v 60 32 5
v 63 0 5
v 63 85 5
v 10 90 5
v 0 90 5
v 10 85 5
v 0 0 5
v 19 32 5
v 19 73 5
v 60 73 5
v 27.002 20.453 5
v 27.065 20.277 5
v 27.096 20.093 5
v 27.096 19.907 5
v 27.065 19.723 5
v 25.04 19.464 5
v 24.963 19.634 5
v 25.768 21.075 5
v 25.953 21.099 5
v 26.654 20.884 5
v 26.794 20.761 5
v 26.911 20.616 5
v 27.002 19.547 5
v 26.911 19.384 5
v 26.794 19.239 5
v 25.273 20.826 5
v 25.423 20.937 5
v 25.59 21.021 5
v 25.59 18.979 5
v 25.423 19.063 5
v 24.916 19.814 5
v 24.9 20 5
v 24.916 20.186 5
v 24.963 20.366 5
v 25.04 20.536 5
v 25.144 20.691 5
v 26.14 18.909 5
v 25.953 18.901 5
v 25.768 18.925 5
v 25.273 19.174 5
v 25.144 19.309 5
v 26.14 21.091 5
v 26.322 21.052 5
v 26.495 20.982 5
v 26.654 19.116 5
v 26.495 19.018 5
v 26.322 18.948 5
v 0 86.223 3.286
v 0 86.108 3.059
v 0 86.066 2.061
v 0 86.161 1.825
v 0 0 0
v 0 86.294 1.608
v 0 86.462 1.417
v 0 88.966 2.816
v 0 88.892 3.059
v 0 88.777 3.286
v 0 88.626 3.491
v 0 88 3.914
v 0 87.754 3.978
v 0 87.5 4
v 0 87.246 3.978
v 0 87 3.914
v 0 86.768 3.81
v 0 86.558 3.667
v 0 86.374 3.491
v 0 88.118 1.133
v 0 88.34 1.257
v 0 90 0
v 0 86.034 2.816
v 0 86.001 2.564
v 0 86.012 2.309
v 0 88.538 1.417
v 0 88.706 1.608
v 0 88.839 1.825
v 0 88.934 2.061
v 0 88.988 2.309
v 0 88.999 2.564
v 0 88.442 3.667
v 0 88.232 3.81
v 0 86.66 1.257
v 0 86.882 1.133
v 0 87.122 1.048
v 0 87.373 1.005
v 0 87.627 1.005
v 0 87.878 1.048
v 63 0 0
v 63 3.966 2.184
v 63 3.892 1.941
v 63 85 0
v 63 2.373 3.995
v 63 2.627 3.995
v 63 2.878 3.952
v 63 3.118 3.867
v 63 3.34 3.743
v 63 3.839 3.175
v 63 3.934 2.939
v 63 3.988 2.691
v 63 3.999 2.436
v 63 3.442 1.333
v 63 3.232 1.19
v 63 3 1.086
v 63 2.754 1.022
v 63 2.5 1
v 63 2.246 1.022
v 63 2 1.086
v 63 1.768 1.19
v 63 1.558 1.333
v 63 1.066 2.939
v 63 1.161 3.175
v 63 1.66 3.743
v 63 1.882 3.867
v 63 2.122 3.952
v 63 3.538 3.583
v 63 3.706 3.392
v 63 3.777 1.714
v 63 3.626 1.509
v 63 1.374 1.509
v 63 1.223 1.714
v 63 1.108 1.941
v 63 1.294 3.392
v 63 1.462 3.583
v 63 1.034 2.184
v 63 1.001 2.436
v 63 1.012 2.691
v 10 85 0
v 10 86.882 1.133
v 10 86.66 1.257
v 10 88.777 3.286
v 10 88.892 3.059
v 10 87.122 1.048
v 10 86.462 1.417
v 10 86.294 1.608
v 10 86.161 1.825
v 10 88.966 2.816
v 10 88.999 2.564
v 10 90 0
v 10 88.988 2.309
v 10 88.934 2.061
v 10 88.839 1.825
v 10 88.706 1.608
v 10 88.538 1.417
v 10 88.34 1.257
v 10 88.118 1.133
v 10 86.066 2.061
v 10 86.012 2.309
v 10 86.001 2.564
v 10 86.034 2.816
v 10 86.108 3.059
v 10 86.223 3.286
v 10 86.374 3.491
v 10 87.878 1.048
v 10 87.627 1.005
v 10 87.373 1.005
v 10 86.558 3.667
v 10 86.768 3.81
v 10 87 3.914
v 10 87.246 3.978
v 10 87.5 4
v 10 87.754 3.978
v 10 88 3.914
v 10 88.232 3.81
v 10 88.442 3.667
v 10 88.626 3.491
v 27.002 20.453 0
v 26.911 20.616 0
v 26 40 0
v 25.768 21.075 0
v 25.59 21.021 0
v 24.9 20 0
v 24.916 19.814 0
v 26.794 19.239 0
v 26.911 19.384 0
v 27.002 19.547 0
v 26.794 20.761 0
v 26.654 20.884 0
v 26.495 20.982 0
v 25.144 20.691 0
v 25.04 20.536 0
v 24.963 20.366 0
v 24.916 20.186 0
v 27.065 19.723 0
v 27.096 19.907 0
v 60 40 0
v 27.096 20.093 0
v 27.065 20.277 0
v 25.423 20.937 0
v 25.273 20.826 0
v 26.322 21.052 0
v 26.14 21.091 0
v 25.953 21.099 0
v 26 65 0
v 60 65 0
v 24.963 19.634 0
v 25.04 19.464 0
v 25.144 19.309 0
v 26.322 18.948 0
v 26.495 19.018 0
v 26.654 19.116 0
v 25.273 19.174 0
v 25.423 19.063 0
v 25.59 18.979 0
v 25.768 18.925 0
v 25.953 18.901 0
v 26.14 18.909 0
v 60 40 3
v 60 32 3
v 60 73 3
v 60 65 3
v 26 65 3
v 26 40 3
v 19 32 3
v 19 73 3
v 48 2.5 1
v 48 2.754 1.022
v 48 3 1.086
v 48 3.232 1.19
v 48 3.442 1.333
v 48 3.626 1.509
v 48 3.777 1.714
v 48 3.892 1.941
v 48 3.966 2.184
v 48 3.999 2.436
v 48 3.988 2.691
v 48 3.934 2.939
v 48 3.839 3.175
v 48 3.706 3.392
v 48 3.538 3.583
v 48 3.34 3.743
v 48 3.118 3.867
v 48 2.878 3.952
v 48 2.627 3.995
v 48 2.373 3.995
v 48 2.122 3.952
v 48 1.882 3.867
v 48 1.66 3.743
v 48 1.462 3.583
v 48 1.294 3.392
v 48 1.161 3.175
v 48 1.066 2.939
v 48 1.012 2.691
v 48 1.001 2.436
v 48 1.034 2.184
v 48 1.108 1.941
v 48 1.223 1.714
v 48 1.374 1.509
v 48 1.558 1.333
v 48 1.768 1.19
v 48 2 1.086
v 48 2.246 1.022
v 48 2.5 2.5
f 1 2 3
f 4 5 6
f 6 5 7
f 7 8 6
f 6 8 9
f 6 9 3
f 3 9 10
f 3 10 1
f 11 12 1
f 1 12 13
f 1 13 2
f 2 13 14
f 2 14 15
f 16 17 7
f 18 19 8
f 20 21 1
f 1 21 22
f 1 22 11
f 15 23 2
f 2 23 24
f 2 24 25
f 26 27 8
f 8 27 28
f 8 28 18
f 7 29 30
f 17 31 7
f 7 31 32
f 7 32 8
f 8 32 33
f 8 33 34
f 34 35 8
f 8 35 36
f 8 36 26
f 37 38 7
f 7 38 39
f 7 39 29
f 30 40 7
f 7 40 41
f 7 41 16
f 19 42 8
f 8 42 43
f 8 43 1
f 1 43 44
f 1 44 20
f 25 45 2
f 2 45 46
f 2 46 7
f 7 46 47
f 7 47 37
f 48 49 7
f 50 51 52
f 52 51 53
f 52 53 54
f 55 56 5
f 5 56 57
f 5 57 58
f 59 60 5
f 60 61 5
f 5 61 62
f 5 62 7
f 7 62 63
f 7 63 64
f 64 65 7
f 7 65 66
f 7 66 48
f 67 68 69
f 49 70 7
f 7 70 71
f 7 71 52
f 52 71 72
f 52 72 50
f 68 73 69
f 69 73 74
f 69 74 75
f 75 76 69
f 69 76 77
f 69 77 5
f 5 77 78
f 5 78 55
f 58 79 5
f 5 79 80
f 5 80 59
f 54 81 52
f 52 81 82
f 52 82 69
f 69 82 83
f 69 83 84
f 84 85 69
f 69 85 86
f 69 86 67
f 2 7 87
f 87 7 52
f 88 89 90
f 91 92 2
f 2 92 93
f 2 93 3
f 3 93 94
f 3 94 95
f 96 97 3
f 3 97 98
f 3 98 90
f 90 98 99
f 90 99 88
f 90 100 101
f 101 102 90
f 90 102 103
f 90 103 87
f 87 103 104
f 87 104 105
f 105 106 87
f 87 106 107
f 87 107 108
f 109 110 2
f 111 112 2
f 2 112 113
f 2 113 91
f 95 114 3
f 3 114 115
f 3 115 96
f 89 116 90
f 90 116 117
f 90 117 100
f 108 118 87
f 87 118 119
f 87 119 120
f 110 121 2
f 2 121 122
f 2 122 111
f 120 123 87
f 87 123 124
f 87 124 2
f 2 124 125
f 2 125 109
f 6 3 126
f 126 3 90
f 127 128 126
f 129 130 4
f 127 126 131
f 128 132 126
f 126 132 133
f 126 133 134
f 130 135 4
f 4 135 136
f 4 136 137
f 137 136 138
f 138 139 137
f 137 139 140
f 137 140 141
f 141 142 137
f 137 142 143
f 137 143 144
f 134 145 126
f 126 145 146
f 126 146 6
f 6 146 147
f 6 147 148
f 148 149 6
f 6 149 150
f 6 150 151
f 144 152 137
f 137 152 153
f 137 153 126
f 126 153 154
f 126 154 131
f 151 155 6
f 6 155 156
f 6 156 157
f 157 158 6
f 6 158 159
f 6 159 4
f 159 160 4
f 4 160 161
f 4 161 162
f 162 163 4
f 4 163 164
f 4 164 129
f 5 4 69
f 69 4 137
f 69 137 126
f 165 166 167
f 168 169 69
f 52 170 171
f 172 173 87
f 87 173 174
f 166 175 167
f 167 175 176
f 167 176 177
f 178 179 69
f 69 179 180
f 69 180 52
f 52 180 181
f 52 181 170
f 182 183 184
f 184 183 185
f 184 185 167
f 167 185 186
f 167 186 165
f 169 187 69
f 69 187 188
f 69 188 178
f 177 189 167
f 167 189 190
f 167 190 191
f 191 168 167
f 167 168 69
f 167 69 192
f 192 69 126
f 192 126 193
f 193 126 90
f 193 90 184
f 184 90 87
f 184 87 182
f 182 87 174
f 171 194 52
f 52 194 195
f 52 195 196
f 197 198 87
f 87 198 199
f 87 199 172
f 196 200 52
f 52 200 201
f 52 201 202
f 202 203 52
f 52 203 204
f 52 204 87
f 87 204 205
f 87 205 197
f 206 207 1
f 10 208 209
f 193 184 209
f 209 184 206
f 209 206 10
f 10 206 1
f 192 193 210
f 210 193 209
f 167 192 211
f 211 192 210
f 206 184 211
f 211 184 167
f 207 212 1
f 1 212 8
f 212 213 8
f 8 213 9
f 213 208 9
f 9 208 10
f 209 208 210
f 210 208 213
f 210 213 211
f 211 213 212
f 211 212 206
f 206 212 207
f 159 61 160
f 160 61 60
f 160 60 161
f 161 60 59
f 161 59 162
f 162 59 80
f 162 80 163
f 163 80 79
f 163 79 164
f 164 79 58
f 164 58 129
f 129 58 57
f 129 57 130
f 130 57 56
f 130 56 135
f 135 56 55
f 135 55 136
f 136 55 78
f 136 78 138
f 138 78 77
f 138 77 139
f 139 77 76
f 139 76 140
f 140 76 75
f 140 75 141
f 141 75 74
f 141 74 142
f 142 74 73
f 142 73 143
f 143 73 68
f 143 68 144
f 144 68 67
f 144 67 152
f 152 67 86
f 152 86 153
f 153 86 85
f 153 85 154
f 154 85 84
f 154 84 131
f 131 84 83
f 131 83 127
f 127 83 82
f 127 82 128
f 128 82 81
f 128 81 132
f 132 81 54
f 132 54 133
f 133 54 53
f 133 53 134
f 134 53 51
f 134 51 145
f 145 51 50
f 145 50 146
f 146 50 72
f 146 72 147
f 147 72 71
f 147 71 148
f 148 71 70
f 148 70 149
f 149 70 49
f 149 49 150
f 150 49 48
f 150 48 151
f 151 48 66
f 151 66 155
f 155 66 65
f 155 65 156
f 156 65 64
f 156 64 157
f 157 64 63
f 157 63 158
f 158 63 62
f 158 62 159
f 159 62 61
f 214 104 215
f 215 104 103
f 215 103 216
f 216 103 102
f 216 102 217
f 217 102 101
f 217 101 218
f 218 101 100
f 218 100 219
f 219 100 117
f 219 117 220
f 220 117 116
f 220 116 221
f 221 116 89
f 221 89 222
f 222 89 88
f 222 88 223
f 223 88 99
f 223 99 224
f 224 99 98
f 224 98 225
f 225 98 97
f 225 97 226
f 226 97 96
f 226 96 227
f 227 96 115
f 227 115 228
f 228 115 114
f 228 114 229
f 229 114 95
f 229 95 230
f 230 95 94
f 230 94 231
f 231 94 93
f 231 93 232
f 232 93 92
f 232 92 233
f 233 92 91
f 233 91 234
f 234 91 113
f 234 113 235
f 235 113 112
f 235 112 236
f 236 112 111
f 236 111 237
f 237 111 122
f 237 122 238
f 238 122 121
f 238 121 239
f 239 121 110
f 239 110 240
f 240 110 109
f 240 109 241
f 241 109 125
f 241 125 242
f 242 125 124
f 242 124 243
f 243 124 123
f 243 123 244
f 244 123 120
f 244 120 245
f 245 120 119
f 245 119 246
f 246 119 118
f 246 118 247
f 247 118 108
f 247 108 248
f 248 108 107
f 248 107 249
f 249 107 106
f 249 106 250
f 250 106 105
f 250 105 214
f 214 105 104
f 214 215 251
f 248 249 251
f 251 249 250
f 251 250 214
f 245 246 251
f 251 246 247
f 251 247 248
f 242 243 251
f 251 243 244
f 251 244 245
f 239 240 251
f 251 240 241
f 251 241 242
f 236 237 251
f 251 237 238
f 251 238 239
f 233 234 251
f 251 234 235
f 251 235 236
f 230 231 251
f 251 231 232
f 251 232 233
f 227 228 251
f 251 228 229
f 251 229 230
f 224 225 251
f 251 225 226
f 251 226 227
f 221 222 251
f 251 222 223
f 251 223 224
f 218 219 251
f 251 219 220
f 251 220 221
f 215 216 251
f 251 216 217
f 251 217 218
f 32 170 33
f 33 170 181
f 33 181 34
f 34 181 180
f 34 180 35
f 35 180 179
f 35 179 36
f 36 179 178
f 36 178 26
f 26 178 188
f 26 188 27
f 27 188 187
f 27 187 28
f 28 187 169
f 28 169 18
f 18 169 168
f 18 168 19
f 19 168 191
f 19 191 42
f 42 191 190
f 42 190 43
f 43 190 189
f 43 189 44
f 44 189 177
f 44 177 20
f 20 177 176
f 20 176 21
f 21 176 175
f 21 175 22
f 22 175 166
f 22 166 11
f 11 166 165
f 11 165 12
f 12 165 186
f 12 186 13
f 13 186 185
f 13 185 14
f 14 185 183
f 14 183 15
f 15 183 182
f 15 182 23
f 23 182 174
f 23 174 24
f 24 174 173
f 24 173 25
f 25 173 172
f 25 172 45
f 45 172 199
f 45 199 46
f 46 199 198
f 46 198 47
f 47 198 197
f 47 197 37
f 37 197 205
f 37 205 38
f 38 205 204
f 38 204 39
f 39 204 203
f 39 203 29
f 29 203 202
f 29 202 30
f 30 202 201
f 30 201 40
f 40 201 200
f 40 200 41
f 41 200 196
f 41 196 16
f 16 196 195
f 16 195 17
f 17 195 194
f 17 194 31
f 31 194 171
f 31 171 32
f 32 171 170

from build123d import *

# Parameters (mm, degrees)
BOSS_EXTRU_1_DEPTH       = 5
ESQUISSE8_W              = 34
ESQUISSE8_H              = 25
ENL_V_MAT_EXTRU_6_DEPTH  = 5
ENL_V_START              = -5
ESQUISSE9_W              = 41
ESQUISSE9_H              = 41
ENL_V_MAT_EXTRU_7_DEPTH  = 2
ENL_V_MAT_EXTRU_8_REACH  = 111.973
ESQUISSE10_R             = 1.5
ESQUISSE12_R             = 1.5
ENL_V_MAT_EXTRU_10_DEPTH = 15
ENL_V_MAT_EXTRU_11_REACH = 111.973
ESQUISSE6_R              = 1.1


with BuildPart() as part:
    # Esquisse1 → Boss.-Extru.1 (new body)
    with BuildSketch(Plane.XY):
        Polygon((0, 0), (0, 85), (0, 90), (10, 90), (10, 85), (63, 85), (63, 0), align=None)
    extrude(amount=BOSS_EXTRU_1_DEPTH)

    # Esquisse8 → Enlèv. mat.-Extru.6 (cut)
    with BuildSketch(Plane(origin=(0, 0, 0), x_dir=(-1, 0, 0), z_dir=(0, 0, -1))):
        with Locations((-43, 52.5)):
            Rectangle(ESQUISSE8_W, ESQUISSE8_H)
    extrude(amount=-ENL_V_MAT_EXTRU_6_DEPTH, mode=Mode.SUBTRACT)

    # Esquisse9 → Enlèv. mat.-Extru.7 (cut)
    with BuildSketch(Plane(origin=(0, 0, 0), x_dir=(-1, 0, 0), z_dir=(0, 0, -1)).offset(ENL_V_START)):
        with Locations((-39.5, 52.5)):
            Rectangle(ESQUISSE9_W, ESQUISSE9_H)
    extrude(amount=ENL_V_MAT_EXTRU_7_DEPTH, mode=Mode.SUBTRACT)

    # Esquisse10 → Enlèv. mat.-Extru.8 (cut, up to next)
    with BuildSketch(Plane.ZY, mode=Mode.PRIVATE) as enl_v_mat_extru_8_sk1:
        with Locations((2.5, 87.5)):
            Circle(ESQUISSE10_R)
    enl_v_mat_extru_8_tool1 = extrude(enl_v_mat_extru_8_sk1.sketch, amount=-ENL_V_MAT_EXTRU_8_REACH, mode=Mode.PRIVATE) & part.part
    add(enl_v_mat_extru_8_tool1.solids().sort_by_distance((0, 87.5, 2.5))[0], mode=Mode.SUBTRACT)

    # Esquisse12 → Enlèv. mat.-Extru.10 (cut)
    with BuildSketch(Plane(origin=(63, 0, 0), x_dir=(0, 0, -1), z_dir=(1, 0, 0))):
        with Locations((-2.5, 2.5)):
            Circle(ESQUISSE12_R)
    extrude(amount=-ENL_V_MAT_EXTRU_10_DEPTH, mode=Mode.SUBTRACT)

    # Esquisse6 → Enlèv. mat.-Extru.11 (cut, up to next)
    with BuildSketch(Plane(origin=(0, 0, 0), x_dir=(-1, 0, 0), z_dir=(0, 0, -1)), mode=Mode.PRIVATE) as enl_v_mat_extru_11_sk1:
        with Locations((-26, 20)):
            Circle(ESQUISSE6_R)
    enl_v_mat_extru_11_tool1 = extrude(enl_v_mat_extru_11_sk1.sketch, amount=-ENL_V_MAT_EXTRU_11_REACH, mode=Mode.PRIVATE) & part.part
    add(enl_v_mat_extru_11_tool1.solids().sort_by_distance((26, 20, 0))[0], mode=Mode.SUBTRACT)


solid = part.part
